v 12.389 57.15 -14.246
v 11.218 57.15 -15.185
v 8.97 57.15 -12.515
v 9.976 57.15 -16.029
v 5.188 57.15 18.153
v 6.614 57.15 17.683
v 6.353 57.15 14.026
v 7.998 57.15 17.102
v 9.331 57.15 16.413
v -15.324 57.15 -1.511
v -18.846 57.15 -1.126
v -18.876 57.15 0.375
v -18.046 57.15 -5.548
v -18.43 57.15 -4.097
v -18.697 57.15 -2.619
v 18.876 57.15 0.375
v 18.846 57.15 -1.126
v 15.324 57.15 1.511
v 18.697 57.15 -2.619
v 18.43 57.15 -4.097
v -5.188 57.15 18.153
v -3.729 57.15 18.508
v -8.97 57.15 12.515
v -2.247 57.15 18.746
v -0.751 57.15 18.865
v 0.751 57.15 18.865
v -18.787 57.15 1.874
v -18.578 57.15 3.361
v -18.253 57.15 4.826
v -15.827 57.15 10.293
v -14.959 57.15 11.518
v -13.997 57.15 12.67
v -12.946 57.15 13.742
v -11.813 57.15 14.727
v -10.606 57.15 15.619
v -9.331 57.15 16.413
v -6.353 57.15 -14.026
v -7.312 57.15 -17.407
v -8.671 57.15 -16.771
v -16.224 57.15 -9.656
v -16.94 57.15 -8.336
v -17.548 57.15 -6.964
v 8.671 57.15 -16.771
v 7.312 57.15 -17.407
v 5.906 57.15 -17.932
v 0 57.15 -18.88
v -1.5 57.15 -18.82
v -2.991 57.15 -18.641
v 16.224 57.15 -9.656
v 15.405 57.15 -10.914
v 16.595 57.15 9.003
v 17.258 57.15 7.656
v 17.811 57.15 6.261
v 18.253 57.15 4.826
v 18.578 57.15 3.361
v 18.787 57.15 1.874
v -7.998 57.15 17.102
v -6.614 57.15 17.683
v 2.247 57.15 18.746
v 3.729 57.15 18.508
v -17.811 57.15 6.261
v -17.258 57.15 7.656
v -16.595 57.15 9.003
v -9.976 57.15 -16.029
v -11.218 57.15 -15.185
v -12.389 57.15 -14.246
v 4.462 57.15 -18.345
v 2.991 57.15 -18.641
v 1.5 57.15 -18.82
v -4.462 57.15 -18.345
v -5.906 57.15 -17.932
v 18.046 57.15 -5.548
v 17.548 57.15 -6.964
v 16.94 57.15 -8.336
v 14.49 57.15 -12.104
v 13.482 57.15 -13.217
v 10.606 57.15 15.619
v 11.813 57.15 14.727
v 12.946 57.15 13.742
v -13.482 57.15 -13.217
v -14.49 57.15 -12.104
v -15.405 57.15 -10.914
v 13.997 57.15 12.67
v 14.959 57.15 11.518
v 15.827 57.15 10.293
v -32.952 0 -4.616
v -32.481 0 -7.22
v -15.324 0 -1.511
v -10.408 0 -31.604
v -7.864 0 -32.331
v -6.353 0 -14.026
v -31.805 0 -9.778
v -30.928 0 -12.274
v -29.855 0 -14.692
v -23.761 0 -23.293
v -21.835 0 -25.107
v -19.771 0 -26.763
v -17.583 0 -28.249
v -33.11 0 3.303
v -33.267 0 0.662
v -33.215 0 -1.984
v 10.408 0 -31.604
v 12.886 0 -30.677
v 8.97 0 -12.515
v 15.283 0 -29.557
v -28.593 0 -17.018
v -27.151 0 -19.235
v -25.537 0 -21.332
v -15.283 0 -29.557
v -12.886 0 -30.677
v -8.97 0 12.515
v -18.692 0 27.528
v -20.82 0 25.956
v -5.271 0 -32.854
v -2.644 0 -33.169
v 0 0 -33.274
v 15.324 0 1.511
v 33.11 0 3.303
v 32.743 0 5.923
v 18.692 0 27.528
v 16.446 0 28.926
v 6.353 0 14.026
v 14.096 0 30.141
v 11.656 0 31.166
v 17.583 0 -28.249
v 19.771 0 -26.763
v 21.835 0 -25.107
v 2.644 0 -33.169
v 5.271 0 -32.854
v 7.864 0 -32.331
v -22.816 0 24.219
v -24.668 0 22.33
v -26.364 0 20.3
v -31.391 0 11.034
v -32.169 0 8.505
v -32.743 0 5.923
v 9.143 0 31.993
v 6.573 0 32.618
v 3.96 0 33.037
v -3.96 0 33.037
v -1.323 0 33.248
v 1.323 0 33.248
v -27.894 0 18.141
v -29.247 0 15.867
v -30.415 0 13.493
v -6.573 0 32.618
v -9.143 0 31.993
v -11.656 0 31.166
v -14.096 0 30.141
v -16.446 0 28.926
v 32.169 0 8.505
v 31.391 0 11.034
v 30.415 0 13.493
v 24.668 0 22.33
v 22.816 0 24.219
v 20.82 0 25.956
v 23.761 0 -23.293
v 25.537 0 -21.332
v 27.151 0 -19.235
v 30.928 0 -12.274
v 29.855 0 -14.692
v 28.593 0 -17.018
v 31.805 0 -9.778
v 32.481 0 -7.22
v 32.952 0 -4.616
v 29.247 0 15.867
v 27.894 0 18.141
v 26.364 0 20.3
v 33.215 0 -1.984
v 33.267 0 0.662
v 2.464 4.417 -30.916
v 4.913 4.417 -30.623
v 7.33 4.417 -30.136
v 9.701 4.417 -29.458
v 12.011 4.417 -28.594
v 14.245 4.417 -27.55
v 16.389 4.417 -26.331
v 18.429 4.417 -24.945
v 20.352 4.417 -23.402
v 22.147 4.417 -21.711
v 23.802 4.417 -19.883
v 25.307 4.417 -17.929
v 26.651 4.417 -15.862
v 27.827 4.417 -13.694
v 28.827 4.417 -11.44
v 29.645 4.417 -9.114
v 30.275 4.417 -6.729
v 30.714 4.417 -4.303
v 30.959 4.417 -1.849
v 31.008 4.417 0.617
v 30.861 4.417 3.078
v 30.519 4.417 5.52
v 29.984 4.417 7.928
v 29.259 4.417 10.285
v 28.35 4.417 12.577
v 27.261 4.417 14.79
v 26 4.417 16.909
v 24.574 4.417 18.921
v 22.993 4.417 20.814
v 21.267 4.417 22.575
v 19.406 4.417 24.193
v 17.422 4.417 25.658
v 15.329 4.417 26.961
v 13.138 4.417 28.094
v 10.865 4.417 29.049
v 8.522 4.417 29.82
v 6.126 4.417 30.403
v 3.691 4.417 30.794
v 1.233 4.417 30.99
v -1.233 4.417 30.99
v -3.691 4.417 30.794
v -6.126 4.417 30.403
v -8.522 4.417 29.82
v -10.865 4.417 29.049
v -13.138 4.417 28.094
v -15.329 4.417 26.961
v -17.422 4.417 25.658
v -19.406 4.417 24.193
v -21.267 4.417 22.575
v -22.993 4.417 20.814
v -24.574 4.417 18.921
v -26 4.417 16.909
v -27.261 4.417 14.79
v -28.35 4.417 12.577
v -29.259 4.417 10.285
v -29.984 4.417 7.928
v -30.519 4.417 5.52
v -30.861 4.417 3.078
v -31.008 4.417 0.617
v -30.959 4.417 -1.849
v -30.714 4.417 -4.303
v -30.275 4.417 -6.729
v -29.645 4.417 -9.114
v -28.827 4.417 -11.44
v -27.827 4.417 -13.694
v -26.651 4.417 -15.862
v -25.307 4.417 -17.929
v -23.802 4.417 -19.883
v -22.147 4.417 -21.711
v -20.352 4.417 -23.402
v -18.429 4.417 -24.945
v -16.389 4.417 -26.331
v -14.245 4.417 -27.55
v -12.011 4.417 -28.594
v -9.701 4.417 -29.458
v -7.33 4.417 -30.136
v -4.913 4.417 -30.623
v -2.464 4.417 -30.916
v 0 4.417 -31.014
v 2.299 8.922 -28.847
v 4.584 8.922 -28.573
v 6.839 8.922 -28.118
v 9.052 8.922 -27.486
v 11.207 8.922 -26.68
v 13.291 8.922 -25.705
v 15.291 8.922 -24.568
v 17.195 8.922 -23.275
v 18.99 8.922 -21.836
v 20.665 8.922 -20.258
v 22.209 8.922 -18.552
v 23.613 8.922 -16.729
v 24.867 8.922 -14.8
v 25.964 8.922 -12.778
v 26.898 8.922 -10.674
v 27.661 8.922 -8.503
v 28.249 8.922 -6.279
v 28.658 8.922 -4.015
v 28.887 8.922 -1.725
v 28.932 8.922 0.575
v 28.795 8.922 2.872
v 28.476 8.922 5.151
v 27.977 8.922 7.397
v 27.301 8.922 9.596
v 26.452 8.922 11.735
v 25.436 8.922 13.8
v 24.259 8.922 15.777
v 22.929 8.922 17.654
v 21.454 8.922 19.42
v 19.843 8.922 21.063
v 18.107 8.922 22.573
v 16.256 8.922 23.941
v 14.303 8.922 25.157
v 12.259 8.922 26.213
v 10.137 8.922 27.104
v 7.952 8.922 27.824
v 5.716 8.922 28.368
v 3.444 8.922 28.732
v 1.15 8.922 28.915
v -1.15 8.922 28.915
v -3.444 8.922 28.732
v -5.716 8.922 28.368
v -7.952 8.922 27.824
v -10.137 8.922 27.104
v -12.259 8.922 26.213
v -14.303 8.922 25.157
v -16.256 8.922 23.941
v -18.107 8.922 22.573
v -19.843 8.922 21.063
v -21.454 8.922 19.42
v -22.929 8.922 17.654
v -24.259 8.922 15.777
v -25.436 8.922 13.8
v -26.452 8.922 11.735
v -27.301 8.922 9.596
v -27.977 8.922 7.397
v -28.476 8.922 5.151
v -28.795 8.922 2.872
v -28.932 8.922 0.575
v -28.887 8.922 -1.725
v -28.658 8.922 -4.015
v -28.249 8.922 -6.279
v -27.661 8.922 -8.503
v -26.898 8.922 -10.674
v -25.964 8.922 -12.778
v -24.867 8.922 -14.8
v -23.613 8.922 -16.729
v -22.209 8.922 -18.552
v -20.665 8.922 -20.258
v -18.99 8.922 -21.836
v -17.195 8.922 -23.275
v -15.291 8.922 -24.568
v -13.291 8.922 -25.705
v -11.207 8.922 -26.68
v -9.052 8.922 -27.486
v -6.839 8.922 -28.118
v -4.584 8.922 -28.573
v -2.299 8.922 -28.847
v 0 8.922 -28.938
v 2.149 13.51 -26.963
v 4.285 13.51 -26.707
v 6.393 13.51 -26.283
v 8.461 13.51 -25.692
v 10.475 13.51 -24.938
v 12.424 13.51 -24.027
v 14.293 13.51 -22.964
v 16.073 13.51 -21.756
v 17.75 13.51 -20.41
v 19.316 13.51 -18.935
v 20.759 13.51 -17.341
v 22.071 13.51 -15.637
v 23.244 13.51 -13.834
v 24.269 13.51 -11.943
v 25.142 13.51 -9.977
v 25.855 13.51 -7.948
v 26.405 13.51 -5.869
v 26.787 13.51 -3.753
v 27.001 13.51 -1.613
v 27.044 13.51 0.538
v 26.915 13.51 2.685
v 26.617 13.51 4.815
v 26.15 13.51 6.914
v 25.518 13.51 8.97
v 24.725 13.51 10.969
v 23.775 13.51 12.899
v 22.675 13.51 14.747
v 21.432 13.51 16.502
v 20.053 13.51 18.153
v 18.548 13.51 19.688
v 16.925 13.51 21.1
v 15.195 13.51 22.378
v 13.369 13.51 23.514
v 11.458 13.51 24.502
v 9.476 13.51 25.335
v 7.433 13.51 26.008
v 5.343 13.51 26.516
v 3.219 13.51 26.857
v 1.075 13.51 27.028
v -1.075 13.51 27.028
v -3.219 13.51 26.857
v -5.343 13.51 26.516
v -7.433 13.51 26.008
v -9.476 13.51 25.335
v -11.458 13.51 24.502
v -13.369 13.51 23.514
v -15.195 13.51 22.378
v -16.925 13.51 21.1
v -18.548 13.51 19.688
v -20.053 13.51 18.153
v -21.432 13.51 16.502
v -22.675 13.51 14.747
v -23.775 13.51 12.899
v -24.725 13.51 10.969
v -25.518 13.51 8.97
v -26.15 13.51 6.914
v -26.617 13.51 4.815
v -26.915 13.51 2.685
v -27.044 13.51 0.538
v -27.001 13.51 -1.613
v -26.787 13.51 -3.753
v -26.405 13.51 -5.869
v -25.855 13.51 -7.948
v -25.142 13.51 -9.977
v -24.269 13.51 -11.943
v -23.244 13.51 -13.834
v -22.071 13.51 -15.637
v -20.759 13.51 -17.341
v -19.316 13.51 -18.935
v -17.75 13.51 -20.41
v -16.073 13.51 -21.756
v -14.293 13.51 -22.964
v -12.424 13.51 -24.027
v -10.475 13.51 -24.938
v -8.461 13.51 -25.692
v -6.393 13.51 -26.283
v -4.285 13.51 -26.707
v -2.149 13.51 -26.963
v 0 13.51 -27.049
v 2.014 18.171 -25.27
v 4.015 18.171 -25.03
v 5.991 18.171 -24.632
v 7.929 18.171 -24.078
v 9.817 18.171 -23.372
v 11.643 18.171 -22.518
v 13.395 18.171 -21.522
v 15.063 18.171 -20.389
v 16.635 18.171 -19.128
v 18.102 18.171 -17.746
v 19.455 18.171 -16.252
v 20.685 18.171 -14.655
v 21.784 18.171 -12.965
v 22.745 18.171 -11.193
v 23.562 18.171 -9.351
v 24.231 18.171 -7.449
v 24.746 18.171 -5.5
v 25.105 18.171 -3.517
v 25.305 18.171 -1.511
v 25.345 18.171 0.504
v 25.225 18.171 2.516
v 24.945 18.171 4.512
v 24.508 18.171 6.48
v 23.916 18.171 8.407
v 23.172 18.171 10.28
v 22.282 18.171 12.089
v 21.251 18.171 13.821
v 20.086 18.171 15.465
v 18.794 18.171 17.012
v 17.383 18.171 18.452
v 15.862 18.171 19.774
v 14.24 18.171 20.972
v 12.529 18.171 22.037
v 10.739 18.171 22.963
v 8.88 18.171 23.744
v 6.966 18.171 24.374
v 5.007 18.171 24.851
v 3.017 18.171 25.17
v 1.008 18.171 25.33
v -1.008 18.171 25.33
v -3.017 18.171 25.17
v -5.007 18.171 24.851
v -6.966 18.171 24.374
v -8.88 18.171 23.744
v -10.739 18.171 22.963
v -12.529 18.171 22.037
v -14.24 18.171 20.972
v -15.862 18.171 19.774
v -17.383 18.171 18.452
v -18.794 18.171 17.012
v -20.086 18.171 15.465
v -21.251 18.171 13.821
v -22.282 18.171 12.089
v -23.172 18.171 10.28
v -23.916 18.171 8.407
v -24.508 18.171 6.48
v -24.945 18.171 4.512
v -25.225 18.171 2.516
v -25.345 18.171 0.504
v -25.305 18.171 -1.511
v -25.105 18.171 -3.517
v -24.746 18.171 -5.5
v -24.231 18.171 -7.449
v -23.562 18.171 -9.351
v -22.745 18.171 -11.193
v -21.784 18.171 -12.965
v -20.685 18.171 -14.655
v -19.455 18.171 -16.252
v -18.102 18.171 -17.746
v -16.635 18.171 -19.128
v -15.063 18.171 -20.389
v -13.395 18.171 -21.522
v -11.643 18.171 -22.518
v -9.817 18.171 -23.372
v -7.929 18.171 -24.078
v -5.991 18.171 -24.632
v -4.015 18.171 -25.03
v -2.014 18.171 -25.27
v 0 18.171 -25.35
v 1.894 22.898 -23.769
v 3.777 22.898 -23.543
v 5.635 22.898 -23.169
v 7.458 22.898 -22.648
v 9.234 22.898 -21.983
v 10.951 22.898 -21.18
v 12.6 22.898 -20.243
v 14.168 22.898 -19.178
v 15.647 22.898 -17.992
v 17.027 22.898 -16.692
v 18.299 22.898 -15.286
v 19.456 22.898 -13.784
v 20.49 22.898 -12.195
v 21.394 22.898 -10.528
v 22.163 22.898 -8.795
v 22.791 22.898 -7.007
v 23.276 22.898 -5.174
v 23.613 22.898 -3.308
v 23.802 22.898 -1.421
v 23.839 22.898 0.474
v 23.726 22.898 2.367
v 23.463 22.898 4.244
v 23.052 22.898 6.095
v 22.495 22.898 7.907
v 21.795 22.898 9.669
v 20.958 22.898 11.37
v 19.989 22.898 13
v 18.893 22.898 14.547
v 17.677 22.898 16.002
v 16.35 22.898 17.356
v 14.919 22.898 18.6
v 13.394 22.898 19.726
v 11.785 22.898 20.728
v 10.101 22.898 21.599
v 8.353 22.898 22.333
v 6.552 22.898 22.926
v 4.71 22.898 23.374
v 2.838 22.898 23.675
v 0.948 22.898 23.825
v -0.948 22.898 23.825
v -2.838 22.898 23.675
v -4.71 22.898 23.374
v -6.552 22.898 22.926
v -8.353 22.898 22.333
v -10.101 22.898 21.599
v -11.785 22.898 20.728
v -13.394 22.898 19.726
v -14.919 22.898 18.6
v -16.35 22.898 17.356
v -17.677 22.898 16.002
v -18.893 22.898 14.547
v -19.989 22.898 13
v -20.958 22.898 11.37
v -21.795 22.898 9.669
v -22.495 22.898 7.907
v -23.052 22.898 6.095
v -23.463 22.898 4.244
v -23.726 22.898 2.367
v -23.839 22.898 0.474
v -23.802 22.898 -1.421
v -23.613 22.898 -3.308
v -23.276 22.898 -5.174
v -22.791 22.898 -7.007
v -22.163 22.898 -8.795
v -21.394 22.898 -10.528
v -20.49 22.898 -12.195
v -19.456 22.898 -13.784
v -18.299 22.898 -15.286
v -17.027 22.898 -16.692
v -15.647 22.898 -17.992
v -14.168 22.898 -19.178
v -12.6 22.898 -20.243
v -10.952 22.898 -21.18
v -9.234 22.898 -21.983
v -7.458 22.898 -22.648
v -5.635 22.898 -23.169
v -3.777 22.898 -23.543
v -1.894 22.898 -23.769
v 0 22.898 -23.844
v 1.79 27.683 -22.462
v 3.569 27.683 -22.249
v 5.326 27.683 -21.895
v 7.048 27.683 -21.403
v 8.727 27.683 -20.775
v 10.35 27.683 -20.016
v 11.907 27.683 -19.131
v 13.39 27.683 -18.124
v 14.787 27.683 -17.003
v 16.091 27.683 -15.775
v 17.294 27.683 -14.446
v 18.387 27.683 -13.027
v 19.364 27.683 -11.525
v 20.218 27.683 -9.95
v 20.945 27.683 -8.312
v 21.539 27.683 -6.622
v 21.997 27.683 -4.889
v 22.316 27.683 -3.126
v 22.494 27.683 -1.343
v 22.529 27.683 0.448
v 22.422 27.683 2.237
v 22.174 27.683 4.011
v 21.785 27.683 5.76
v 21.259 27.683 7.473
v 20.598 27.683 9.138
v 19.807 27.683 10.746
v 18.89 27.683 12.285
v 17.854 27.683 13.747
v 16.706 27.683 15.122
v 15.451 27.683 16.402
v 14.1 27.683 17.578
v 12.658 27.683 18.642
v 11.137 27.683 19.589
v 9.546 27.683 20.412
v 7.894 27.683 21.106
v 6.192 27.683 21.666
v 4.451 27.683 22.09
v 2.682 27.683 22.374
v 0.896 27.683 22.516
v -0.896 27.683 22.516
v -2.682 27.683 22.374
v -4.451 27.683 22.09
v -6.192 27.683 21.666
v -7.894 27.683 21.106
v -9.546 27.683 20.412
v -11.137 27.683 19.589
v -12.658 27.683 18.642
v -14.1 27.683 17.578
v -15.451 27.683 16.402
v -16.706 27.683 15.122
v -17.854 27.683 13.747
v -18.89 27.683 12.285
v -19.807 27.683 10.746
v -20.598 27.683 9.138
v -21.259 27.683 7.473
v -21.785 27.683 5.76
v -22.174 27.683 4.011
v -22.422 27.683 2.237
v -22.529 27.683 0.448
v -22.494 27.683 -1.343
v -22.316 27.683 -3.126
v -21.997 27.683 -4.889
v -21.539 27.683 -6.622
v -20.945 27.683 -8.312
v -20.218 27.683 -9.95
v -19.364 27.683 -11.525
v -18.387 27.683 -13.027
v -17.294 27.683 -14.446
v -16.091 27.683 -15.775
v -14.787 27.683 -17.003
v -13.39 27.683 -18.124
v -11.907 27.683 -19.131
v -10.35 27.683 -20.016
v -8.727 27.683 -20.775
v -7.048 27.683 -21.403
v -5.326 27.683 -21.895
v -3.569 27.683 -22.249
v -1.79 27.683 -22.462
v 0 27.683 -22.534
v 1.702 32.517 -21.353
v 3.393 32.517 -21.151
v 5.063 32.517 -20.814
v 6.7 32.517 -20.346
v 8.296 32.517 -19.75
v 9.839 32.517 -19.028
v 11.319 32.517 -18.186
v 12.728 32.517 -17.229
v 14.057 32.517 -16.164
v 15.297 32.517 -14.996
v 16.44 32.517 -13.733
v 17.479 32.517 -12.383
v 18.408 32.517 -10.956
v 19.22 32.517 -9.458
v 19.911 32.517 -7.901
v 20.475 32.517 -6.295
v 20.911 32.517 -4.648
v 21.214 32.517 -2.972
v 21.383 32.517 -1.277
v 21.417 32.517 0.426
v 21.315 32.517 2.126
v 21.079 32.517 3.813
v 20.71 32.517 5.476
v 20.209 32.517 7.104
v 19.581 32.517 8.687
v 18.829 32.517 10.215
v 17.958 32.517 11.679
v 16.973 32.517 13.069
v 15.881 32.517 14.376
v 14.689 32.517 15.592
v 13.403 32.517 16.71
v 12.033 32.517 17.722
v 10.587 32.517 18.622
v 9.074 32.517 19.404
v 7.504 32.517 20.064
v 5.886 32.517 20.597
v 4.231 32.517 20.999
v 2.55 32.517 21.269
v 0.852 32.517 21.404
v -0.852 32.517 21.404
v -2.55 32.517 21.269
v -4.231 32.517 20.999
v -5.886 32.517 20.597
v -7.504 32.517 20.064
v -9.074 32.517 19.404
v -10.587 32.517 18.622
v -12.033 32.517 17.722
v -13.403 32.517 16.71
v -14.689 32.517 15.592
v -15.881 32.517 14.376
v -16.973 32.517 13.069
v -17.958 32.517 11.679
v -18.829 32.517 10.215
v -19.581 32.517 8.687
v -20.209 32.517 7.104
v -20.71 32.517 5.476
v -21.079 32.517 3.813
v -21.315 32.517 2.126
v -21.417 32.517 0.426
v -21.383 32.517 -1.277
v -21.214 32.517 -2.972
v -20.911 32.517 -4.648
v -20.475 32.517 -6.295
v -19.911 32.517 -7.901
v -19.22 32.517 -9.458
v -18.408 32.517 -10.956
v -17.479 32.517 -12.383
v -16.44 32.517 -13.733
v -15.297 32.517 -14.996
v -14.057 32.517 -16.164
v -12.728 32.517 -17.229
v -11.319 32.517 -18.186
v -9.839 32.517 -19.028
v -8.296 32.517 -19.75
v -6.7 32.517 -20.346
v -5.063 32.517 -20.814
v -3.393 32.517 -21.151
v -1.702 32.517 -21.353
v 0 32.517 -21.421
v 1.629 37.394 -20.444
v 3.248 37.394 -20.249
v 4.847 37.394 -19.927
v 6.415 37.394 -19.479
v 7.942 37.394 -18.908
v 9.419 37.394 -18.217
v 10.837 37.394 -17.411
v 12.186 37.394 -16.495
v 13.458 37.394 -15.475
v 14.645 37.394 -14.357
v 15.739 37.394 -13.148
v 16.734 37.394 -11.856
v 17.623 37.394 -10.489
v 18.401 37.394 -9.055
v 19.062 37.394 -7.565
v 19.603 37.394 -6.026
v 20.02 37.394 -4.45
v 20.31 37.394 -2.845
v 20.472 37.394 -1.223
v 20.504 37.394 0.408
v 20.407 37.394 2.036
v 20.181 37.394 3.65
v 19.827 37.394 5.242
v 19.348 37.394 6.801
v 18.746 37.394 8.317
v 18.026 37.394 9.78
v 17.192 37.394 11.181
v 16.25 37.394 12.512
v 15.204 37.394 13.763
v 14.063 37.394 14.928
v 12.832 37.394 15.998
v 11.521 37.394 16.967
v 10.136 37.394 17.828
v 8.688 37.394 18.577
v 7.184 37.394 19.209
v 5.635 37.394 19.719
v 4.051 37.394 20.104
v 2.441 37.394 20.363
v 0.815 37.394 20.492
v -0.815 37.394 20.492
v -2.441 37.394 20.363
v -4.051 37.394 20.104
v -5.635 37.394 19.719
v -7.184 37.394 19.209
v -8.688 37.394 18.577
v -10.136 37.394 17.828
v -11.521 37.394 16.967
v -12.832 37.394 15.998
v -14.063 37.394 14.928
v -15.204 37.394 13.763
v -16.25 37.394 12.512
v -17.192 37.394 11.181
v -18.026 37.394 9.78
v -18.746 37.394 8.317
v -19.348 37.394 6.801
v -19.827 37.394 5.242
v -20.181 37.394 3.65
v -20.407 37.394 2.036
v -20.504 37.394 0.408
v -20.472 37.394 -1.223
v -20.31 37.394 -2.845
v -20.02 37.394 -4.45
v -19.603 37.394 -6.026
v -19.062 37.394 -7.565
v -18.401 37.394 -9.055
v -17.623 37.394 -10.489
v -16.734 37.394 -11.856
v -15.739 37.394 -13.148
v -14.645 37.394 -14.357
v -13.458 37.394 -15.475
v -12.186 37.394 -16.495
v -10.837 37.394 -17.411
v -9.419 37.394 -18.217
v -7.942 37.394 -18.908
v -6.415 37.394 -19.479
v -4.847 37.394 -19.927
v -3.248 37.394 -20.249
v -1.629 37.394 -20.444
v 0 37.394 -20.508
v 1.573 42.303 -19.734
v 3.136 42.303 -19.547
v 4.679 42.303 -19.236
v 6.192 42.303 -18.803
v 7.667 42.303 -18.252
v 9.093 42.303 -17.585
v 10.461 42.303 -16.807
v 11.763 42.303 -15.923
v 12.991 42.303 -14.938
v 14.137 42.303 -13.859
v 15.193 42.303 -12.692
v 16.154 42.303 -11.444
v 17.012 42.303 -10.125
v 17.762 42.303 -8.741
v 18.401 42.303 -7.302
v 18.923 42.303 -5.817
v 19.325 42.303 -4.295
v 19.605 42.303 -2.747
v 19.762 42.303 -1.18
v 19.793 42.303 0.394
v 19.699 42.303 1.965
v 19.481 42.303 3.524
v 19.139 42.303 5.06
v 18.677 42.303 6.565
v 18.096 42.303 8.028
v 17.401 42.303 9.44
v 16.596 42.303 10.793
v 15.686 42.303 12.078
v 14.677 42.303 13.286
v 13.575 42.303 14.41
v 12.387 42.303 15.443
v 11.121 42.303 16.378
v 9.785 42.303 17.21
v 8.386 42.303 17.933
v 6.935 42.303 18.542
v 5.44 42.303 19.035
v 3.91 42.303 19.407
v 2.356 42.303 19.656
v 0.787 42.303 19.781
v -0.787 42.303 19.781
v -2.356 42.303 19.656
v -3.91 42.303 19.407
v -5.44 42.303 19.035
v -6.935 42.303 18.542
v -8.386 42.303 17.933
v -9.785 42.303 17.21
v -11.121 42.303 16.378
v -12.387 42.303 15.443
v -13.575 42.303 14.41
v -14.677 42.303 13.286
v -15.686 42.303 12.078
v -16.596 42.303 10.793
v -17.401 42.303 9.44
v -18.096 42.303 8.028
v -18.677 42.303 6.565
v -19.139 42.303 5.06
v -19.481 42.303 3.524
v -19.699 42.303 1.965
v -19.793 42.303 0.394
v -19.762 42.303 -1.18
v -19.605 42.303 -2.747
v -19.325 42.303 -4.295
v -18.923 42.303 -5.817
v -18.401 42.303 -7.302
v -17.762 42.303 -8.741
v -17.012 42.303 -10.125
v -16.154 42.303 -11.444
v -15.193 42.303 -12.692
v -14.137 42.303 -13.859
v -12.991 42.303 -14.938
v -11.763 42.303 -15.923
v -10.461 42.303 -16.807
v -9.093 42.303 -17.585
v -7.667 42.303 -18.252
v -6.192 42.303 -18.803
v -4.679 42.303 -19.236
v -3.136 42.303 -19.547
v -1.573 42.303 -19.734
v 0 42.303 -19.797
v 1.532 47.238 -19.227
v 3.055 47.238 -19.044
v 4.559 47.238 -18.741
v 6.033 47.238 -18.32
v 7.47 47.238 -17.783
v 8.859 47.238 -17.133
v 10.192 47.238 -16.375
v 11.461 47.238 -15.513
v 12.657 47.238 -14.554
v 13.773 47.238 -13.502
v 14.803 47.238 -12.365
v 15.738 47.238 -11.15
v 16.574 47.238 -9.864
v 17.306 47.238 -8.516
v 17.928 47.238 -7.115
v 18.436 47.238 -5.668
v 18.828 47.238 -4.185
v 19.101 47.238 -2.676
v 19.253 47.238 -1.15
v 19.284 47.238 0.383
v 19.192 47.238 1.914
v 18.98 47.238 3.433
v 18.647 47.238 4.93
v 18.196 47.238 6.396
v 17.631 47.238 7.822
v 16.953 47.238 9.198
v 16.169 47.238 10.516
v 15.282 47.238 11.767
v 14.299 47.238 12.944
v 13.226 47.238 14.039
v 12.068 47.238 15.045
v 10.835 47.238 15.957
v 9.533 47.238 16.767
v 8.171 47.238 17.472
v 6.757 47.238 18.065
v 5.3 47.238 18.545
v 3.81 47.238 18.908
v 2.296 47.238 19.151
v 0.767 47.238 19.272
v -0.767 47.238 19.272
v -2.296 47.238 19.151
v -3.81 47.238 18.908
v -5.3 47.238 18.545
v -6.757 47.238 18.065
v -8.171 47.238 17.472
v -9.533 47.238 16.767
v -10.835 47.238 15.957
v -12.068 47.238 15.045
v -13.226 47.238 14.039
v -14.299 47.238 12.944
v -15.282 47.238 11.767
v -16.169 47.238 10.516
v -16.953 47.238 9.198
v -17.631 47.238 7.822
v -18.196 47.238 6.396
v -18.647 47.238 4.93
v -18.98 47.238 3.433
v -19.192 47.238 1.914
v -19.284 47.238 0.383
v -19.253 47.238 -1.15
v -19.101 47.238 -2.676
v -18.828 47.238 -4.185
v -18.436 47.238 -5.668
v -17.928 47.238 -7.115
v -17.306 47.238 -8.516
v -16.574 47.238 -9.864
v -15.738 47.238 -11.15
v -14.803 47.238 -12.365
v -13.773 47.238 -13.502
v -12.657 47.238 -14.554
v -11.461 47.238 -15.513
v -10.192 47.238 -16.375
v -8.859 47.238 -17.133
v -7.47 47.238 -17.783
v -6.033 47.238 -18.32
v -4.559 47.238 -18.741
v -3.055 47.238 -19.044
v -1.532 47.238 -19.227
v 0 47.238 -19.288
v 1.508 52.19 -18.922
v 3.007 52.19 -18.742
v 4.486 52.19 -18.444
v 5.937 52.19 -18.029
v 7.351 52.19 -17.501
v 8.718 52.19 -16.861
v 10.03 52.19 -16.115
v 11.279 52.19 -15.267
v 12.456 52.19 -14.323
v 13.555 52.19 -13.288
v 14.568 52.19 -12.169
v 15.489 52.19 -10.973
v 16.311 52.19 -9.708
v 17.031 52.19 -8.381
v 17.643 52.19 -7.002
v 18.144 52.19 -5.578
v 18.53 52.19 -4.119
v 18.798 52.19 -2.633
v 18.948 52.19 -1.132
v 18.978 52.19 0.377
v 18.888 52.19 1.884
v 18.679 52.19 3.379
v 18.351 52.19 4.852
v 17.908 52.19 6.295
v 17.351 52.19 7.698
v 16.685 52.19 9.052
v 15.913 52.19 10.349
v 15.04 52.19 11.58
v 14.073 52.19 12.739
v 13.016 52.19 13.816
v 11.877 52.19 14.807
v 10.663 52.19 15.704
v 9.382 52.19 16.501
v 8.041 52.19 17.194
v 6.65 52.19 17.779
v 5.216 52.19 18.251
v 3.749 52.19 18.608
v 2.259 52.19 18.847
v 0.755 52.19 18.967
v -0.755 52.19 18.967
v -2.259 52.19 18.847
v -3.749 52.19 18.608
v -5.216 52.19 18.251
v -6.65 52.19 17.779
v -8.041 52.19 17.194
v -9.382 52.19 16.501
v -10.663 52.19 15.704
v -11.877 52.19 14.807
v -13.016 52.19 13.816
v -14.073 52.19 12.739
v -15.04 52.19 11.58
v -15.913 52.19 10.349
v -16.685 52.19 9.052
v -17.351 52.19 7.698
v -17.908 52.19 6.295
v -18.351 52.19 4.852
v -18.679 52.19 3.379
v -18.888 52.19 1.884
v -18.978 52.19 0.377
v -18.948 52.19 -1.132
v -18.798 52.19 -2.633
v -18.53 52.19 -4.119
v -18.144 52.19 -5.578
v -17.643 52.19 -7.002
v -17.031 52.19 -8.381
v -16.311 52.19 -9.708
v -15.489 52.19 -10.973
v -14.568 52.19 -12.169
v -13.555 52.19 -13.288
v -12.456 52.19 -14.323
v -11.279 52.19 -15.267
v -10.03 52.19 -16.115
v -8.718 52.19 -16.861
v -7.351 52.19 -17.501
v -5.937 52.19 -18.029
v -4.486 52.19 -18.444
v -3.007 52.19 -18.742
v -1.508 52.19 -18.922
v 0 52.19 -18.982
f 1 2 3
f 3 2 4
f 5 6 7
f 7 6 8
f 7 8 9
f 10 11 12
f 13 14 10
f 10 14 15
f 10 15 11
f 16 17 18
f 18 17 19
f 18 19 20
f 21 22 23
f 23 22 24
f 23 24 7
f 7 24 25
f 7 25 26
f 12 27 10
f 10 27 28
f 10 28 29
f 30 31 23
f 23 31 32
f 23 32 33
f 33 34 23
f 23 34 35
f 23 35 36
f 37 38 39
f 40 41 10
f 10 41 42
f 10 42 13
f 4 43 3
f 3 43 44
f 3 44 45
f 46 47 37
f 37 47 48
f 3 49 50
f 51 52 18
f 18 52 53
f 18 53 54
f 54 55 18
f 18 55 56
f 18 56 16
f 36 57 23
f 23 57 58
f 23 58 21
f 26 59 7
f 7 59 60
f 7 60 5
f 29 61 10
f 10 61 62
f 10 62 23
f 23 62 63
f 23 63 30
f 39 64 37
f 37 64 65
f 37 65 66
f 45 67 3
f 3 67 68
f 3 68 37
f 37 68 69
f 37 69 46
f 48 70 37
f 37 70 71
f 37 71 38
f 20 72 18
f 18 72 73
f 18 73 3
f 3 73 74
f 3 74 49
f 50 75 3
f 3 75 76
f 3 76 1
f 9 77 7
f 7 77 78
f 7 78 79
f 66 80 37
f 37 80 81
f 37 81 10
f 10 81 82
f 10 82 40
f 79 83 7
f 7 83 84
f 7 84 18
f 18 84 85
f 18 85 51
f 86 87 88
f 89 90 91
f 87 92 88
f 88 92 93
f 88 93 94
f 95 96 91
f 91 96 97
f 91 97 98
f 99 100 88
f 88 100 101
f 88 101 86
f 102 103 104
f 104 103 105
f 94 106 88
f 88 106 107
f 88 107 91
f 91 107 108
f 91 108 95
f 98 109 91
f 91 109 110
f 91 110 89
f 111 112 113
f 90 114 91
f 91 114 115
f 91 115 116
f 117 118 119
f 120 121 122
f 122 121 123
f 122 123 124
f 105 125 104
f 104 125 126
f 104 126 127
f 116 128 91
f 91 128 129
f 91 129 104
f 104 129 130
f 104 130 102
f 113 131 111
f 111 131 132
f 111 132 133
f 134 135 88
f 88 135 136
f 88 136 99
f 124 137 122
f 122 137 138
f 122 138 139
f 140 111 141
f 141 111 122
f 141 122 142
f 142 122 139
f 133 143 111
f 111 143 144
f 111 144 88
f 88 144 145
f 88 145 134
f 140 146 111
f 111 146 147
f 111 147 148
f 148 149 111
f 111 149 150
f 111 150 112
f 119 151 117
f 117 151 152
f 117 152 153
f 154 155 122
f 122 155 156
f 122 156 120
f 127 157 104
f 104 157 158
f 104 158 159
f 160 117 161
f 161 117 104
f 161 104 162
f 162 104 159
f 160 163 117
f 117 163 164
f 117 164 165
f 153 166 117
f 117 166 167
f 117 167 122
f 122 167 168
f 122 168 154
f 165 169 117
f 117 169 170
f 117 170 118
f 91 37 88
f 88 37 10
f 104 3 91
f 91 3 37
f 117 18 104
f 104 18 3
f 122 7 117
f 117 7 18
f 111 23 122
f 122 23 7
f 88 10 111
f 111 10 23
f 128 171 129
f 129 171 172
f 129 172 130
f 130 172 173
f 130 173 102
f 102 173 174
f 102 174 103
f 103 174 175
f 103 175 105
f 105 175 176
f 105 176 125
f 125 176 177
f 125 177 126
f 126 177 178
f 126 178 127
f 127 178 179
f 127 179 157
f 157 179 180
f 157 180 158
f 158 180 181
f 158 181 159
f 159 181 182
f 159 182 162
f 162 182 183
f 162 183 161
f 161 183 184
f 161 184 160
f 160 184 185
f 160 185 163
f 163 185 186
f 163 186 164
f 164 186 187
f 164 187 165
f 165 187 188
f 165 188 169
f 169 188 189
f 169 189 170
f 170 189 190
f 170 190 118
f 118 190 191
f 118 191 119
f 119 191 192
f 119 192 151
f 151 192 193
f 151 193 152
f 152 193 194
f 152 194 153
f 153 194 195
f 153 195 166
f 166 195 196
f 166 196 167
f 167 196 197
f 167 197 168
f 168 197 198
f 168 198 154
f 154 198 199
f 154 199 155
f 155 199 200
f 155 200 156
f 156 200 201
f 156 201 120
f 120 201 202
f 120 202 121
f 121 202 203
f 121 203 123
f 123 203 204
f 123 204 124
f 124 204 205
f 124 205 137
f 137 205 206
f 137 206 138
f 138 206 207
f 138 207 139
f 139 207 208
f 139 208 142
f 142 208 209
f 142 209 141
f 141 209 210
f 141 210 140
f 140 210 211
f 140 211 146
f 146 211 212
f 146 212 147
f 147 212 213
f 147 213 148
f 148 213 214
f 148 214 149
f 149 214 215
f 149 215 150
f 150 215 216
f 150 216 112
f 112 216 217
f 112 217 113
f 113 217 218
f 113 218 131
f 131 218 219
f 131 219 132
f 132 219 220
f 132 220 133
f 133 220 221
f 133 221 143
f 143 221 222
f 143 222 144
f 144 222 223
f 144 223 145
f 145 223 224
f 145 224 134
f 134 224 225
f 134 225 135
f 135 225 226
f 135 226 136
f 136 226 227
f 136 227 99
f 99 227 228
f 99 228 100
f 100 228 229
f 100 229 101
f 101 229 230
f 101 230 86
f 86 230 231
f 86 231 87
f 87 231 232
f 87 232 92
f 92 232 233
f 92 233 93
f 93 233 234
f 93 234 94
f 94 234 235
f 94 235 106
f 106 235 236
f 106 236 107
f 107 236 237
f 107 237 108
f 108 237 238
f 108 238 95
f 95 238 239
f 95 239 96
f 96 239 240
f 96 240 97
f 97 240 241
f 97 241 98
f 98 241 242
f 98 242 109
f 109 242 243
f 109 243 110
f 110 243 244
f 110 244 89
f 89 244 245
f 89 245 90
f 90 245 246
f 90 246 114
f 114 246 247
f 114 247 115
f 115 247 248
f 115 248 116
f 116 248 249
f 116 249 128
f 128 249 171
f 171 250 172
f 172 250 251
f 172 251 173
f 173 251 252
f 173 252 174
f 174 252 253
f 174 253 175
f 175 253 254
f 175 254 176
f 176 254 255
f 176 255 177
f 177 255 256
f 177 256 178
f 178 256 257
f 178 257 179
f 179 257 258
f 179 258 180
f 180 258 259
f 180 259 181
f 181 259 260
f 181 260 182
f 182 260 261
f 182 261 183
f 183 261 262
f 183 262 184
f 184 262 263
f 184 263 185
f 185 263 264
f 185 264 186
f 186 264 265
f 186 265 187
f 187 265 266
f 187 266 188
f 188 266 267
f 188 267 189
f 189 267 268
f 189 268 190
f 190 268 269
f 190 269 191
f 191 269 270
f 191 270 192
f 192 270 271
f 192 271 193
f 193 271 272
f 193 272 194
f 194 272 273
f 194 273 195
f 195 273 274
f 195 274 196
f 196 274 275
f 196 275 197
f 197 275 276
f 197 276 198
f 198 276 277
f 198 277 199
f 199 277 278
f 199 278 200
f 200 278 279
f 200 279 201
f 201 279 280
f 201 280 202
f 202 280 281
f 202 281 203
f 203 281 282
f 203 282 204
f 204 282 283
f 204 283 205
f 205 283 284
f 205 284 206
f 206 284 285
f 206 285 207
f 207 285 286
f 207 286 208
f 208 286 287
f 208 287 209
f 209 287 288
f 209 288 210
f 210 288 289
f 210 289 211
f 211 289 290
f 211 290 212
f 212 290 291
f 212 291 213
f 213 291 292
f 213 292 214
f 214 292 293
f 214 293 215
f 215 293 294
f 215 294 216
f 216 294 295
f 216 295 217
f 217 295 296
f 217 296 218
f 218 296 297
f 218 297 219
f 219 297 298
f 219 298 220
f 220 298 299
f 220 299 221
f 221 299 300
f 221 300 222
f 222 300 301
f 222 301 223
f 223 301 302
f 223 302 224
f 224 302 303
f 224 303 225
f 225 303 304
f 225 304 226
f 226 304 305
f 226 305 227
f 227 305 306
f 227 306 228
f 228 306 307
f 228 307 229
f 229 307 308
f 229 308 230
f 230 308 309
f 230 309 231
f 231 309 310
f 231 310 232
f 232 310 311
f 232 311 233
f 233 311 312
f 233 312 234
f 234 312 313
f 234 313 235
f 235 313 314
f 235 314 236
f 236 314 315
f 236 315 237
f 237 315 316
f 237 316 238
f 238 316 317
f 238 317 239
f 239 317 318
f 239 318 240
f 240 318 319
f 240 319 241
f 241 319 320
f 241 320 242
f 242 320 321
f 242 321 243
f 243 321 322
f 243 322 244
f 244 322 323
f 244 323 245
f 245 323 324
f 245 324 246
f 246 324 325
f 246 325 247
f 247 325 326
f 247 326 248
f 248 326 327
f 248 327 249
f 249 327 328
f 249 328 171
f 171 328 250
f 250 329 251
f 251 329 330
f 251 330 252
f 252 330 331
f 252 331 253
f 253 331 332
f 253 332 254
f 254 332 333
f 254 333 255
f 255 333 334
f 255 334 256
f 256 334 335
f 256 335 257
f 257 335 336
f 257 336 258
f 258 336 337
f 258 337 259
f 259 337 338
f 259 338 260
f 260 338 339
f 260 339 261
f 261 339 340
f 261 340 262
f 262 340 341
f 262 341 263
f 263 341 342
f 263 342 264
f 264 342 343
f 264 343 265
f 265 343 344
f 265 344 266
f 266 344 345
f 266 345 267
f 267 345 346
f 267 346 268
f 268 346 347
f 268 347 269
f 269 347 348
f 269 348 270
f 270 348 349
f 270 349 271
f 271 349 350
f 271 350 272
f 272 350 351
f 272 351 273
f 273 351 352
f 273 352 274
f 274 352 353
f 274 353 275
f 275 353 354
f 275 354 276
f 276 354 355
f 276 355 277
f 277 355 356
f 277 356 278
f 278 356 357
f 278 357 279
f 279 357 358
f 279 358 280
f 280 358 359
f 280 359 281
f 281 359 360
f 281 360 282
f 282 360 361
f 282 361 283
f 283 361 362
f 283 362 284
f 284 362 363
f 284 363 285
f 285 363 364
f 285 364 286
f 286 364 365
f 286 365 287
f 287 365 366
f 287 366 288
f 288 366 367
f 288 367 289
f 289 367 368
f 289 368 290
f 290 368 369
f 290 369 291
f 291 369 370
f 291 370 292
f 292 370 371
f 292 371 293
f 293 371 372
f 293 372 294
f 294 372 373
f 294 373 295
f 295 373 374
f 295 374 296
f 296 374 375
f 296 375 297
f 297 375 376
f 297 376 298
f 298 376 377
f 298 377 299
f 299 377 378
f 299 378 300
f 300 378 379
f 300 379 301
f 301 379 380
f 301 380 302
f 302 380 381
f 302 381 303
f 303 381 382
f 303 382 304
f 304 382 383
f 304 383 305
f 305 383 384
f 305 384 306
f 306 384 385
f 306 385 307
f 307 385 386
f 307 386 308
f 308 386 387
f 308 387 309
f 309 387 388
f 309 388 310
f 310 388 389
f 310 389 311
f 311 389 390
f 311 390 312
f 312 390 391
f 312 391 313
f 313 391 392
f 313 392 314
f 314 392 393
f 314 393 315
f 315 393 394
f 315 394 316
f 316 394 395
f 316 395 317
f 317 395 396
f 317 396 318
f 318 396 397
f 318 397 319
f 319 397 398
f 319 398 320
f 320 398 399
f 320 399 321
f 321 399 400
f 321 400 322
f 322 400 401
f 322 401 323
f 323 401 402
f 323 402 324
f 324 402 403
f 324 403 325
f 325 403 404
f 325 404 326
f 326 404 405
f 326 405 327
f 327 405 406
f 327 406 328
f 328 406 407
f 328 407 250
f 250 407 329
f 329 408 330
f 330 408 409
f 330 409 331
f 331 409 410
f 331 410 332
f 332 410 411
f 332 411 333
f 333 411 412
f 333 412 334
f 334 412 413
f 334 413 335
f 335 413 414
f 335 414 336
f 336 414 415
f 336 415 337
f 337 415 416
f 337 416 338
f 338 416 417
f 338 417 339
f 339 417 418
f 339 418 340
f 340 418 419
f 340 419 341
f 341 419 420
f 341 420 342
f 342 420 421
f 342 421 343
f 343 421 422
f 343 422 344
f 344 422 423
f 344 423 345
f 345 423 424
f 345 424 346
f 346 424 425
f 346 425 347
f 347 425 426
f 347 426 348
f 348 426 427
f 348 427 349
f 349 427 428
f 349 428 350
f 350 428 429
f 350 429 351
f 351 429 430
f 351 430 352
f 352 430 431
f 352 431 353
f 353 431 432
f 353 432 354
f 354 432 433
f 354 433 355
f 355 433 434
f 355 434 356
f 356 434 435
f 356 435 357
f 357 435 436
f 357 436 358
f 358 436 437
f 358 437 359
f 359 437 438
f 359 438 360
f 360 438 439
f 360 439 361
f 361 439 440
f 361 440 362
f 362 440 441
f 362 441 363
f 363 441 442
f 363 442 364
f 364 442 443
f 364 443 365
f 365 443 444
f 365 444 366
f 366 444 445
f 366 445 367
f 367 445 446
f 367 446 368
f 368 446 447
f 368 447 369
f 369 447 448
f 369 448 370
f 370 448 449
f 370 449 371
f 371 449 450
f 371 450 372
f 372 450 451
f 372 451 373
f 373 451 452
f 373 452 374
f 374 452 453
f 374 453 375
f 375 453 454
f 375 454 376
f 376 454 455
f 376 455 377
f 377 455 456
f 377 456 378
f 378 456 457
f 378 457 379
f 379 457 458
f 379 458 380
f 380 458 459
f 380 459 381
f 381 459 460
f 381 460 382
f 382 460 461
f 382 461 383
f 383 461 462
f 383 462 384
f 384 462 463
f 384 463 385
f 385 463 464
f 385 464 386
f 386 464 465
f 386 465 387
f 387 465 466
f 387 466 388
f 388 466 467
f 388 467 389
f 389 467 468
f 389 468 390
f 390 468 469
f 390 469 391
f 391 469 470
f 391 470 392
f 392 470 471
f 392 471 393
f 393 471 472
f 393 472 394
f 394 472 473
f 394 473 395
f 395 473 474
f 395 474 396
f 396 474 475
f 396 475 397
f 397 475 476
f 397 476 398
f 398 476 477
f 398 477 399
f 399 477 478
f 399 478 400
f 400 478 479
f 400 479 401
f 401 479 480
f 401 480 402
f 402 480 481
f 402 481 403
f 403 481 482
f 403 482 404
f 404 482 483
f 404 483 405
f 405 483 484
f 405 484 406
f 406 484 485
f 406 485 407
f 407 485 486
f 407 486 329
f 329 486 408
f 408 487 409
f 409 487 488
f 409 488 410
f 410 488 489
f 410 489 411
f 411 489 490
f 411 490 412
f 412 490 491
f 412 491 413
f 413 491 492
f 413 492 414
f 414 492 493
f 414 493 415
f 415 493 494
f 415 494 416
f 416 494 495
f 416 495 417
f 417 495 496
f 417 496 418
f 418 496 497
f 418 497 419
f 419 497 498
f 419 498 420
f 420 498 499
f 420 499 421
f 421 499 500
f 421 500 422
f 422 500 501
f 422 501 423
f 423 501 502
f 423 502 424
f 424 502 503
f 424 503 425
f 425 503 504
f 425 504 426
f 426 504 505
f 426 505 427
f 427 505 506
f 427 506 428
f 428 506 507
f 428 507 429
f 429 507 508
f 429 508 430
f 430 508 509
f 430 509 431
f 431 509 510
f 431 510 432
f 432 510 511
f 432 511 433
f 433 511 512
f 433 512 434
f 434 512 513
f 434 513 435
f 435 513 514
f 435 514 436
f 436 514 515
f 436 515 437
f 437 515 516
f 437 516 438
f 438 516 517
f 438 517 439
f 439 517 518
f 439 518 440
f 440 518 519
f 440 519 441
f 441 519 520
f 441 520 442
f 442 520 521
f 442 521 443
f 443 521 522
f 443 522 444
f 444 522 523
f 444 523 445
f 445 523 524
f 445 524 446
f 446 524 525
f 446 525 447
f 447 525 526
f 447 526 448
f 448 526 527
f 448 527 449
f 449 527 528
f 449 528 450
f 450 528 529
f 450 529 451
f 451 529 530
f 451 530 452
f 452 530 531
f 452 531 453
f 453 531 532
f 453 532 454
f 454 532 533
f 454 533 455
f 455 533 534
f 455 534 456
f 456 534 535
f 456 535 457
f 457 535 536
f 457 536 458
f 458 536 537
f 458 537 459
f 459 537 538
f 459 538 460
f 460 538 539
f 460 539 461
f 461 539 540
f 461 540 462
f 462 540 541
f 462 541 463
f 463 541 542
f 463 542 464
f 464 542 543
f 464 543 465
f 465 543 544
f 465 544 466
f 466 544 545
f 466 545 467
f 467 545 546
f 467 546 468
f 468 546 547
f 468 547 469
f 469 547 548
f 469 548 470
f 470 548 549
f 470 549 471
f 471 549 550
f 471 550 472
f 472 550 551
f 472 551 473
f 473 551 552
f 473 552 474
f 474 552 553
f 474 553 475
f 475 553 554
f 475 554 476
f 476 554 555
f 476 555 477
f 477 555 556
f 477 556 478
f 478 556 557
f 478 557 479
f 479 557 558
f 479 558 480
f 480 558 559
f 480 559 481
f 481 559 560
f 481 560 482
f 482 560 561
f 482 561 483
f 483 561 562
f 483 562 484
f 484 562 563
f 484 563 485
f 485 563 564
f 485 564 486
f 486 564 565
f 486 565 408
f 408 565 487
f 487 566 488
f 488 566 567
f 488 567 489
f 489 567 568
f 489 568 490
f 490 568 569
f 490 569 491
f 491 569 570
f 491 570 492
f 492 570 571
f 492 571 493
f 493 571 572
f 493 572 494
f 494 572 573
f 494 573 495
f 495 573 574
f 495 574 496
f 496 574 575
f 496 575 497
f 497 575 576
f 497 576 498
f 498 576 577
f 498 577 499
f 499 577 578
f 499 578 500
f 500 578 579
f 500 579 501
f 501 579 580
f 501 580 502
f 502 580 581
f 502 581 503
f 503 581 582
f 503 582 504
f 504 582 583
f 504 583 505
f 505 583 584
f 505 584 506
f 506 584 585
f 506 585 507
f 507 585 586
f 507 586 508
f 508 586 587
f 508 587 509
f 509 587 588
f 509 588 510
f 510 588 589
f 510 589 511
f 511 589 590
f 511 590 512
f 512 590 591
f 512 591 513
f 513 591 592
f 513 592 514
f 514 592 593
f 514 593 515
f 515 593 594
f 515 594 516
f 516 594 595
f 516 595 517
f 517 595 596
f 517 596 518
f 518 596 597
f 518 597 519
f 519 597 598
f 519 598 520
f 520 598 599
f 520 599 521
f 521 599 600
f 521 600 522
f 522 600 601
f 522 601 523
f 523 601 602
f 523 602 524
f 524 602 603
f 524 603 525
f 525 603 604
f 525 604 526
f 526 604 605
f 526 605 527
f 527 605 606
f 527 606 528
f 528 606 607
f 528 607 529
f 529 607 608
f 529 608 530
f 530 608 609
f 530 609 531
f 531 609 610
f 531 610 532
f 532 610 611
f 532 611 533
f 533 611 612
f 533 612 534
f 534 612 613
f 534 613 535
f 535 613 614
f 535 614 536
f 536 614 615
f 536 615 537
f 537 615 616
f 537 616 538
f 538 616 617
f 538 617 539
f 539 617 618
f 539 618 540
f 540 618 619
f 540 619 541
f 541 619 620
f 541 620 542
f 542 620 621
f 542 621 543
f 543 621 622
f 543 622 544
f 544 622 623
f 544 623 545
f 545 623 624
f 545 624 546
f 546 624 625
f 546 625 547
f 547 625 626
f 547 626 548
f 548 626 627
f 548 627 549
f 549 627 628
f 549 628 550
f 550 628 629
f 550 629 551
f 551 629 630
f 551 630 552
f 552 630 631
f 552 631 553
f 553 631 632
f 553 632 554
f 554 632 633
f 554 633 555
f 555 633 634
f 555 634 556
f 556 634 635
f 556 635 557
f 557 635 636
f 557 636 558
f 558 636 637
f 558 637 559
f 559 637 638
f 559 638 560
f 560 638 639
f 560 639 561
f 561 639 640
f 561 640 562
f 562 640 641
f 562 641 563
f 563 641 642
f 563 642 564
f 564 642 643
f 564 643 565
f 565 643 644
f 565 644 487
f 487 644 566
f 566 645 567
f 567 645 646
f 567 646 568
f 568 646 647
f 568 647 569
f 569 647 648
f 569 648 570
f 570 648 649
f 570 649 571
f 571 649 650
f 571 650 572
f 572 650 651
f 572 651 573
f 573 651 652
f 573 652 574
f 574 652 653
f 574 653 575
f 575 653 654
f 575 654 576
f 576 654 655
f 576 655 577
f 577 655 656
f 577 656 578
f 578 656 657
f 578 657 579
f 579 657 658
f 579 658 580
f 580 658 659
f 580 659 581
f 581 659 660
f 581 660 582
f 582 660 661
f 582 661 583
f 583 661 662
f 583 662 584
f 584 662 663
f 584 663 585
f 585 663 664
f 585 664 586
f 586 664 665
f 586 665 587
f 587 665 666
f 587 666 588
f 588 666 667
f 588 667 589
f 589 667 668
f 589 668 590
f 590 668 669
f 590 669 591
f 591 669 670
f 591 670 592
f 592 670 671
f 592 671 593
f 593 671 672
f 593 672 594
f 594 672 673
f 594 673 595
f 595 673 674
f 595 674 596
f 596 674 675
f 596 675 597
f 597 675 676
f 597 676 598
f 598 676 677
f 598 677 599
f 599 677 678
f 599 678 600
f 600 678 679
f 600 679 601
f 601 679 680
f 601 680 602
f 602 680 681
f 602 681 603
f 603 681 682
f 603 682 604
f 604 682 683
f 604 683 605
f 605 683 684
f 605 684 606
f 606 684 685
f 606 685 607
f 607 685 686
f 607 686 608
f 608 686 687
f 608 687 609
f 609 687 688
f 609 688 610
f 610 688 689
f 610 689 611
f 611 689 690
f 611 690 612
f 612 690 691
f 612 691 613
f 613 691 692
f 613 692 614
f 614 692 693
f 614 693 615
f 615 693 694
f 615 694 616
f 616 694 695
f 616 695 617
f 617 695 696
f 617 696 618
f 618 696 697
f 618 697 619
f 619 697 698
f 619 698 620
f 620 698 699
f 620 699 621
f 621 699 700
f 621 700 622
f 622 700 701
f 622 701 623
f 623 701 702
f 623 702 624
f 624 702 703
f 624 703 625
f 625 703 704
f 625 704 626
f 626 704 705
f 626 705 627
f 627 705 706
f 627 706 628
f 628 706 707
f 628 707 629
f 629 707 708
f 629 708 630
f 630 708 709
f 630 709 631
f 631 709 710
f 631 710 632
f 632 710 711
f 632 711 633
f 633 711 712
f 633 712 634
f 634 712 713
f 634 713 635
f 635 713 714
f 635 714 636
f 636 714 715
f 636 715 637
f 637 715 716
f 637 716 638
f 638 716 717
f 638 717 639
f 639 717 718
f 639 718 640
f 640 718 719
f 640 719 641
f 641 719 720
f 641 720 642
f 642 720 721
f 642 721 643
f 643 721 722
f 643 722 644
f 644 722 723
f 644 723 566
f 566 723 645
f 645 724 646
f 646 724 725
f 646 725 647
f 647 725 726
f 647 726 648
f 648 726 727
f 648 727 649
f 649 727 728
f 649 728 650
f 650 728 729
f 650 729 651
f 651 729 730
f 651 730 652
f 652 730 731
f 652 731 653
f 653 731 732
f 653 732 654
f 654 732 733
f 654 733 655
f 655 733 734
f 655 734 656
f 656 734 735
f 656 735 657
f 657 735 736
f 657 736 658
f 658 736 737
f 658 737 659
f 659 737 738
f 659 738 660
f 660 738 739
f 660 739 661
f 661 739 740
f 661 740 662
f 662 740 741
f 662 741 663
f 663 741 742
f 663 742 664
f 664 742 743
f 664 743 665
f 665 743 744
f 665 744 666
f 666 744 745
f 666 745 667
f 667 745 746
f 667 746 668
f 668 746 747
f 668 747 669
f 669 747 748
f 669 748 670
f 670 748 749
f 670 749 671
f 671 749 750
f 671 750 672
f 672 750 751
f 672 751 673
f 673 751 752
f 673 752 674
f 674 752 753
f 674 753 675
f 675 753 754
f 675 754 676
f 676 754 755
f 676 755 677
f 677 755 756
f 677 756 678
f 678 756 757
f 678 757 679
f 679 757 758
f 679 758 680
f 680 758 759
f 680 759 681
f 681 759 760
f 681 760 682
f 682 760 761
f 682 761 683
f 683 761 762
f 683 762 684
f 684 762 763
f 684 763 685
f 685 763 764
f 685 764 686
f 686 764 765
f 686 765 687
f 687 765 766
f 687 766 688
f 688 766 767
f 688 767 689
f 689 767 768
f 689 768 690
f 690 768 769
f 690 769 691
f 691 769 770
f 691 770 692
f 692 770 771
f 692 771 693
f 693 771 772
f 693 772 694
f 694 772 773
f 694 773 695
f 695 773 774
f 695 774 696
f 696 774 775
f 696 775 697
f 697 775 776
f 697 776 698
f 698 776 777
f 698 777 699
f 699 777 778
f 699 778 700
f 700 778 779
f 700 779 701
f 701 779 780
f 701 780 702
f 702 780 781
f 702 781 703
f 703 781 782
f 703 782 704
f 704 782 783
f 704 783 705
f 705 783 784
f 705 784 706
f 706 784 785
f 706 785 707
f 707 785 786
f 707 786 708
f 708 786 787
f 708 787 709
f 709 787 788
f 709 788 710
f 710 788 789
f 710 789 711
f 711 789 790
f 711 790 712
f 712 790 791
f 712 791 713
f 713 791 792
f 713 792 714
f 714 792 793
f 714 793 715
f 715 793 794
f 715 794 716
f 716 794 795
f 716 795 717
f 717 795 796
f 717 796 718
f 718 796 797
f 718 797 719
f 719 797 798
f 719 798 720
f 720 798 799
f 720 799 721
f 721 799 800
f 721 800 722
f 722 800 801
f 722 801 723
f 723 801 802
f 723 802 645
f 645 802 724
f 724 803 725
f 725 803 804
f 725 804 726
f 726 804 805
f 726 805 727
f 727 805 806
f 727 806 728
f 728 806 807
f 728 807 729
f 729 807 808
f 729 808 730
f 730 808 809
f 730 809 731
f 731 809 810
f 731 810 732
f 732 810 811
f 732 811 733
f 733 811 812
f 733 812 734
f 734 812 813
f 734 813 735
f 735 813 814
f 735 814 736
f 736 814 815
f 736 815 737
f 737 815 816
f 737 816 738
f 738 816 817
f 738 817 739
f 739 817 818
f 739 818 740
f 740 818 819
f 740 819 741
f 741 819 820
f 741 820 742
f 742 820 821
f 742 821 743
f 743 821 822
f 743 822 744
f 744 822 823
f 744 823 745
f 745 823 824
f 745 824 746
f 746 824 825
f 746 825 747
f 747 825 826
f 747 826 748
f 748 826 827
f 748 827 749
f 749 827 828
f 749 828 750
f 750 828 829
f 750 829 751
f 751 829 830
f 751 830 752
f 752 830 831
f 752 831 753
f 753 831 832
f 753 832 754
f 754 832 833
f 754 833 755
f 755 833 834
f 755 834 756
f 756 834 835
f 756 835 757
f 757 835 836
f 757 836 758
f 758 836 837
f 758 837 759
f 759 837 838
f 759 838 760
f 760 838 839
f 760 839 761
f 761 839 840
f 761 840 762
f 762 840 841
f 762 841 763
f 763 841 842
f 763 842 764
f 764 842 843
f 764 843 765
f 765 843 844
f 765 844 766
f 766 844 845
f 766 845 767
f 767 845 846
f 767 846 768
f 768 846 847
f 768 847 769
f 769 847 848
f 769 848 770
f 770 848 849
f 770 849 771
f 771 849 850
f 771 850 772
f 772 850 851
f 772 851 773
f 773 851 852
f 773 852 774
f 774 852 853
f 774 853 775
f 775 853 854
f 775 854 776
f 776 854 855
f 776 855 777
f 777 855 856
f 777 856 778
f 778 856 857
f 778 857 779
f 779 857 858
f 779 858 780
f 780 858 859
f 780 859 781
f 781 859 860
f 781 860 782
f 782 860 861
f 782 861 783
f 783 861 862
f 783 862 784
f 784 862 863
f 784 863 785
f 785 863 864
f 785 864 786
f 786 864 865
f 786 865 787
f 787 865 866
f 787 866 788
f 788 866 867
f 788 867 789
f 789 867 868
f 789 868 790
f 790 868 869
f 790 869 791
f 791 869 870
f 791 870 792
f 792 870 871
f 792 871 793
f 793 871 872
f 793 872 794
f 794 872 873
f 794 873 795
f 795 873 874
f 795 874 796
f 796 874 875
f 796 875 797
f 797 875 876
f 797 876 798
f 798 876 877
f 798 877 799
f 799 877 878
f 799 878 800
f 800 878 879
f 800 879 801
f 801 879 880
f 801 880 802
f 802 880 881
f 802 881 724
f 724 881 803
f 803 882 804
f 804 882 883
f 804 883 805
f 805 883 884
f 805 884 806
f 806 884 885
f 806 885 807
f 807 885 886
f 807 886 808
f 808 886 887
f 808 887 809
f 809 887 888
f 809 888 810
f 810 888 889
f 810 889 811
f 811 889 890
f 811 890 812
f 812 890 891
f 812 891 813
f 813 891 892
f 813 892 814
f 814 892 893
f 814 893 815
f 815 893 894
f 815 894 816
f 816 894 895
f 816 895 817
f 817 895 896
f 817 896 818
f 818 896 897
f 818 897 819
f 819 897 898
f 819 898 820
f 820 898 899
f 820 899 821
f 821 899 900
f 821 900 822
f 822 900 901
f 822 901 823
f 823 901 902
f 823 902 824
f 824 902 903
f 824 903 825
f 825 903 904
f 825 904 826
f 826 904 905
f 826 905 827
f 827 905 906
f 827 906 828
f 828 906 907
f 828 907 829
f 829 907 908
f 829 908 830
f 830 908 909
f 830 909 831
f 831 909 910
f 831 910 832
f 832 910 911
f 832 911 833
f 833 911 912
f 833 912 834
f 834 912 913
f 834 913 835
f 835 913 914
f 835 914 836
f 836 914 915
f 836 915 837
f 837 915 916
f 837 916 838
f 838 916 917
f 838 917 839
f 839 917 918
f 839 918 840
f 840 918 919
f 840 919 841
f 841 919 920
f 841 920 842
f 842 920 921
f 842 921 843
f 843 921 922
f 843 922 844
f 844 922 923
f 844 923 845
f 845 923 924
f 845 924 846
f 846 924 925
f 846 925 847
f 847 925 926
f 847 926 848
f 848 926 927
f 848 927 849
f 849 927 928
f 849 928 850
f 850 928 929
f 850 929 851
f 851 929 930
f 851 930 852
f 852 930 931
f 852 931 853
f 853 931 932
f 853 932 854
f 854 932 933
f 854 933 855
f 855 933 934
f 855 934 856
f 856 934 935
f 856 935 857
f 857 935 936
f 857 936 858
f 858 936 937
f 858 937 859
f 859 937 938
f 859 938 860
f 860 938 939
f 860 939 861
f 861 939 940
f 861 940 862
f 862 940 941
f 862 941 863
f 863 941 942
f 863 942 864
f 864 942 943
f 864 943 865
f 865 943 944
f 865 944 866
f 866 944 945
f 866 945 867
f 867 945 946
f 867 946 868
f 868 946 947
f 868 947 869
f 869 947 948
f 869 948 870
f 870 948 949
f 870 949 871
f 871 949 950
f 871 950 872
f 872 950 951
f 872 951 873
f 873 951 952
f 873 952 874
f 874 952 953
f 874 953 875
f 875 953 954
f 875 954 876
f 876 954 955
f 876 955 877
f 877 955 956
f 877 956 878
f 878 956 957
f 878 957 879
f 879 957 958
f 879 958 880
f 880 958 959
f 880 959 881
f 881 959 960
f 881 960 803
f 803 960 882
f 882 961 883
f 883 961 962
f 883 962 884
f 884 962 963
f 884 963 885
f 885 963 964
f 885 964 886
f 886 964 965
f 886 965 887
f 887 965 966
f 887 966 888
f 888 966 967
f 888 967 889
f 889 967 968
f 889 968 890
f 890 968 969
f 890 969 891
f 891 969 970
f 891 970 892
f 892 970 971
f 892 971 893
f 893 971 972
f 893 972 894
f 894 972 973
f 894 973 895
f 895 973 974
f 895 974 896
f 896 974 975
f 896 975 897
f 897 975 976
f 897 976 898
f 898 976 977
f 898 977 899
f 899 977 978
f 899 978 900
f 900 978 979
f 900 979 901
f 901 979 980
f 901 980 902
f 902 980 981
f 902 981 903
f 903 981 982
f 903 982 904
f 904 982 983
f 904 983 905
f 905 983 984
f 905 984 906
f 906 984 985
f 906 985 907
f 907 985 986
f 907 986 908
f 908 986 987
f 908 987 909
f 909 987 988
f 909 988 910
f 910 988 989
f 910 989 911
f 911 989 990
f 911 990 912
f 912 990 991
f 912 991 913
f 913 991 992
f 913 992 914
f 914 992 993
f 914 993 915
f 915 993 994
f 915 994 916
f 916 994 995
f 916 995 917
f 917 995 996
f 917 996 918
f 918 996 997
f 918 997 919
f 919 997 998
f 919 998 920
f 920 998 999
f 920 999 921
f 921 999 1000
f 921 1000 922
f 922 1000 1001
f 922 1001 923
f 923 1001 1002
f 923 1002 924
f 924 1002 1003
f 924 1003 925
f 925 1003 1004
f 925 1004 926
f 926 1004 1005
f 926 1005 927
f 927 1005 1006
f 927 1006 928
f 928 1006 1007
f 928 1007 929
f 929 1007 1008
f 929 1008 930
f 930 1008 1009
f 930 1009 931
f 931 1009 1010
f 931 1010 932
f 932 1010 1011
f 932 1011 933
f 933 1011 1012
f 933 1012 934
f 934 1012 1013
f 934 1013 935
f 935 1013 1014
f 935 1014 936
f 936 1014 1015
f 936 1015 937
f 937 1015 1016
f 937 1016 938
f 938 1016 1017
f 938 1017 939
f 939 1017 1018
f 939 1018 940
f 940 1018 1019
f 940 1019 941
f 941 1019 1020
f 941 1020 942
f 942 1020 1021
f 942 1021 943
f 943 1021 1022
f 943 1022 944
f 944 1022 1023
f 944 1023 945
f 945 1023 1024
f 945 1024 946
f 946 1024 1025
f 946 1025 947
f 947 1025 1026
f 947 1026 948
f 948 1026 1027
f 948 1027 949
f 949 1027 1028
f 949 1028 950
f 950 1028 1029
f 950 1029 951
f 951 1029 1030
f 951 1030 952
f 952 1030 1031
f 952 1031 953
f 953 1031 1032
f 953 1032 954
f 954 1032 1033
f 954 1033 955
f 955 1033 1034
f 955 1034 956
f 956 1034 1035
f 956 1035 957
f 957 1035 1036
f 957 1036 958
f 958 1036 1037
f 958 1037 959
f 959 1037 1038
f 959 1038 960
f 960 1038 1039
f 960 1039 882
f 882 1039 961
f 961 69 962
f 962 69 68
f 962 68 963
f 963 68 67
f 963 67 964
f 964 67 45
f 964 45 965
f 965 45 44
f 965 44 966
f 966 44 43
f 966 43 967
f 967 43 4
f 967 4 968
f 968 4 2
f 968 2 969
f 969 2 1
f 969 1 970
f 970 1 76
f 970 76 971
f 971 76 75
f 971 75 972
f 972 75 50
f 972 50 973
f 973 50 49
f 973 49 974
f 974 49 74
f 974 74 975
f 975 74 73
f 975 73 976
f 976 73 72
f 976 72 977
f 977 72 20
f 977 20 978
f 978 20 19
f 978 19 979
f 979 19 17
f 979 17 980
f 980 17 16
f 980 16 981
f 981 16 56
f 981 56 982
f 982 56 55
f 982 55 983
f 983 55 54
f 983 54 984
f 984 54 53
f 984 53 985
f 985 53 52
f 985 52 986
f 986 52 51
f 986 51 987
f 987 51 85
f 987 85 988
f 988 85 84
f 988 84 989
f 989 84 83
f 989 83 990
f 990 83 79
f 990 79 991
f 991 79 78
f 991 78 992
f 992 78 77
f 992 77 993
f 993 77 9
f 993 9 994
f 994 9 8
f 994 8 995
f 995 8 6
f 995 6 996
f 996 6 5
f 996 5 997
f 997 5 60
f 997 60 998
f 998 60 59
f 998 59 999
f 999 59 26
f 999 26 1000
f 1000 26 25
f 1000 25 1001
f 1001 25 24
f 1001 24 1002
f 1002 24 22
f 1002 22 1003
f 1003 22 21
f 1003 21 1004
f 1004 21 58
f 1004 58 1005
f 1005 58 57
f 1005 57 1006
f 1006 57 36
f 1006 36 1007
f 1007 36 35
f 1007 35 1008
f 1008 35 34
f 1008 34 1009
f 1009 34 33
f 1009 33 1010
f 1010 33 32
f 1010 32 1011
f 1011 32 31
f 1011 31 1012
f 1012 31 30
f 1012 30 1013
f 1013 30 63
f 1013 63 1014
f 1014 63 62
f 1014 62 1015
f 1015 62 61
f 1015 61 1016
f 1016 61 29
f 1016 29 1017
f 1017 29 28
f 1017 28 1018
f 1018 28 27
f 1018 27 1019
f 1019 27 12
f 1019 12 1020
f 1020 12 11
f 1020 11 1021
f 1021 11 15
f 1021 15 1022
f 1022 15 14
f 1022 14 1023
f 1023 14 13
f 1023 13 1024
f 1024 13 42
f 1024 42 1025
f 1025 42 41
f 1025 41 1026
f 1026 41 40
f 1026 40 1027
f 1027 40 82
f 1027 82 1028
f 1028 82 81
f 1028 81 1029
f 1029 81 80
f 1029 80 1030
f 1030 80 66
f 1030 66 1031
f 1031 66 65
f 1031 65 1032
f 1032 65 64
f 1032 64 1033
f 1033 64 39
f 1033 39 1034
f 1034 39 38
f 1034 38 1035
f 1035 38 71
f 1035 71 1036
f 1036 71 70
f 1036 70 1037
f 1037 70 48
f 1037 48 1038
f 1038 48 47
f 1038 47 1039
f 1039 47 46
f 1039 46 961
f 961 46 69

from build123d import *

# Parameters (mm, degrees)
SKETCH1_R           = 33.274
BOSS_EXTRUDE1_DEPTH = 57.15
CUT_EXTRUDE1_DEPTH  = 57.15
SKETCH4_R           = 120.65


with BuildPart() as part:
    # Sketch1 → Boss-Extrude1 (new body)
    with BuildSketch(Plane(origin=(0, 0, 0), x_dir=(1, 0, 0), z_dir=(0, 1, 0))):
        Circle(SKETCH1_R)
    extrude(amount=BOSS_EXTRUDE1_DEPTH)

    # Sketch2 → Cut-Extrude1 (cut)
    with BuildSketch(Plane.XZ):
        Polygon((-15.323636661, -1.510781079), (-6.353443536, -14.026049167), (8.970193125, -12.515268087), (15.323636661, 1.510781079), (6.353443536, 14.026049167), (-8.970193125, 12.515268087), align=None)
    extrude(amount=-CUT_EXTRUDE1_DEPTH, mode=Mode.SUBTRACT)

    # Sketch4 → Cut-Revolve2 (revolve, cut)
    with BuildSketch(Plane.XY):
        with Locations((-139.52982337, 57.15)):
            Circle(SKETCH4_R)
    revolve(axis=Axis((0, 0, 0), (0, 1, 0)), mode=Mode.SUBTRACT)


solid = part.part
